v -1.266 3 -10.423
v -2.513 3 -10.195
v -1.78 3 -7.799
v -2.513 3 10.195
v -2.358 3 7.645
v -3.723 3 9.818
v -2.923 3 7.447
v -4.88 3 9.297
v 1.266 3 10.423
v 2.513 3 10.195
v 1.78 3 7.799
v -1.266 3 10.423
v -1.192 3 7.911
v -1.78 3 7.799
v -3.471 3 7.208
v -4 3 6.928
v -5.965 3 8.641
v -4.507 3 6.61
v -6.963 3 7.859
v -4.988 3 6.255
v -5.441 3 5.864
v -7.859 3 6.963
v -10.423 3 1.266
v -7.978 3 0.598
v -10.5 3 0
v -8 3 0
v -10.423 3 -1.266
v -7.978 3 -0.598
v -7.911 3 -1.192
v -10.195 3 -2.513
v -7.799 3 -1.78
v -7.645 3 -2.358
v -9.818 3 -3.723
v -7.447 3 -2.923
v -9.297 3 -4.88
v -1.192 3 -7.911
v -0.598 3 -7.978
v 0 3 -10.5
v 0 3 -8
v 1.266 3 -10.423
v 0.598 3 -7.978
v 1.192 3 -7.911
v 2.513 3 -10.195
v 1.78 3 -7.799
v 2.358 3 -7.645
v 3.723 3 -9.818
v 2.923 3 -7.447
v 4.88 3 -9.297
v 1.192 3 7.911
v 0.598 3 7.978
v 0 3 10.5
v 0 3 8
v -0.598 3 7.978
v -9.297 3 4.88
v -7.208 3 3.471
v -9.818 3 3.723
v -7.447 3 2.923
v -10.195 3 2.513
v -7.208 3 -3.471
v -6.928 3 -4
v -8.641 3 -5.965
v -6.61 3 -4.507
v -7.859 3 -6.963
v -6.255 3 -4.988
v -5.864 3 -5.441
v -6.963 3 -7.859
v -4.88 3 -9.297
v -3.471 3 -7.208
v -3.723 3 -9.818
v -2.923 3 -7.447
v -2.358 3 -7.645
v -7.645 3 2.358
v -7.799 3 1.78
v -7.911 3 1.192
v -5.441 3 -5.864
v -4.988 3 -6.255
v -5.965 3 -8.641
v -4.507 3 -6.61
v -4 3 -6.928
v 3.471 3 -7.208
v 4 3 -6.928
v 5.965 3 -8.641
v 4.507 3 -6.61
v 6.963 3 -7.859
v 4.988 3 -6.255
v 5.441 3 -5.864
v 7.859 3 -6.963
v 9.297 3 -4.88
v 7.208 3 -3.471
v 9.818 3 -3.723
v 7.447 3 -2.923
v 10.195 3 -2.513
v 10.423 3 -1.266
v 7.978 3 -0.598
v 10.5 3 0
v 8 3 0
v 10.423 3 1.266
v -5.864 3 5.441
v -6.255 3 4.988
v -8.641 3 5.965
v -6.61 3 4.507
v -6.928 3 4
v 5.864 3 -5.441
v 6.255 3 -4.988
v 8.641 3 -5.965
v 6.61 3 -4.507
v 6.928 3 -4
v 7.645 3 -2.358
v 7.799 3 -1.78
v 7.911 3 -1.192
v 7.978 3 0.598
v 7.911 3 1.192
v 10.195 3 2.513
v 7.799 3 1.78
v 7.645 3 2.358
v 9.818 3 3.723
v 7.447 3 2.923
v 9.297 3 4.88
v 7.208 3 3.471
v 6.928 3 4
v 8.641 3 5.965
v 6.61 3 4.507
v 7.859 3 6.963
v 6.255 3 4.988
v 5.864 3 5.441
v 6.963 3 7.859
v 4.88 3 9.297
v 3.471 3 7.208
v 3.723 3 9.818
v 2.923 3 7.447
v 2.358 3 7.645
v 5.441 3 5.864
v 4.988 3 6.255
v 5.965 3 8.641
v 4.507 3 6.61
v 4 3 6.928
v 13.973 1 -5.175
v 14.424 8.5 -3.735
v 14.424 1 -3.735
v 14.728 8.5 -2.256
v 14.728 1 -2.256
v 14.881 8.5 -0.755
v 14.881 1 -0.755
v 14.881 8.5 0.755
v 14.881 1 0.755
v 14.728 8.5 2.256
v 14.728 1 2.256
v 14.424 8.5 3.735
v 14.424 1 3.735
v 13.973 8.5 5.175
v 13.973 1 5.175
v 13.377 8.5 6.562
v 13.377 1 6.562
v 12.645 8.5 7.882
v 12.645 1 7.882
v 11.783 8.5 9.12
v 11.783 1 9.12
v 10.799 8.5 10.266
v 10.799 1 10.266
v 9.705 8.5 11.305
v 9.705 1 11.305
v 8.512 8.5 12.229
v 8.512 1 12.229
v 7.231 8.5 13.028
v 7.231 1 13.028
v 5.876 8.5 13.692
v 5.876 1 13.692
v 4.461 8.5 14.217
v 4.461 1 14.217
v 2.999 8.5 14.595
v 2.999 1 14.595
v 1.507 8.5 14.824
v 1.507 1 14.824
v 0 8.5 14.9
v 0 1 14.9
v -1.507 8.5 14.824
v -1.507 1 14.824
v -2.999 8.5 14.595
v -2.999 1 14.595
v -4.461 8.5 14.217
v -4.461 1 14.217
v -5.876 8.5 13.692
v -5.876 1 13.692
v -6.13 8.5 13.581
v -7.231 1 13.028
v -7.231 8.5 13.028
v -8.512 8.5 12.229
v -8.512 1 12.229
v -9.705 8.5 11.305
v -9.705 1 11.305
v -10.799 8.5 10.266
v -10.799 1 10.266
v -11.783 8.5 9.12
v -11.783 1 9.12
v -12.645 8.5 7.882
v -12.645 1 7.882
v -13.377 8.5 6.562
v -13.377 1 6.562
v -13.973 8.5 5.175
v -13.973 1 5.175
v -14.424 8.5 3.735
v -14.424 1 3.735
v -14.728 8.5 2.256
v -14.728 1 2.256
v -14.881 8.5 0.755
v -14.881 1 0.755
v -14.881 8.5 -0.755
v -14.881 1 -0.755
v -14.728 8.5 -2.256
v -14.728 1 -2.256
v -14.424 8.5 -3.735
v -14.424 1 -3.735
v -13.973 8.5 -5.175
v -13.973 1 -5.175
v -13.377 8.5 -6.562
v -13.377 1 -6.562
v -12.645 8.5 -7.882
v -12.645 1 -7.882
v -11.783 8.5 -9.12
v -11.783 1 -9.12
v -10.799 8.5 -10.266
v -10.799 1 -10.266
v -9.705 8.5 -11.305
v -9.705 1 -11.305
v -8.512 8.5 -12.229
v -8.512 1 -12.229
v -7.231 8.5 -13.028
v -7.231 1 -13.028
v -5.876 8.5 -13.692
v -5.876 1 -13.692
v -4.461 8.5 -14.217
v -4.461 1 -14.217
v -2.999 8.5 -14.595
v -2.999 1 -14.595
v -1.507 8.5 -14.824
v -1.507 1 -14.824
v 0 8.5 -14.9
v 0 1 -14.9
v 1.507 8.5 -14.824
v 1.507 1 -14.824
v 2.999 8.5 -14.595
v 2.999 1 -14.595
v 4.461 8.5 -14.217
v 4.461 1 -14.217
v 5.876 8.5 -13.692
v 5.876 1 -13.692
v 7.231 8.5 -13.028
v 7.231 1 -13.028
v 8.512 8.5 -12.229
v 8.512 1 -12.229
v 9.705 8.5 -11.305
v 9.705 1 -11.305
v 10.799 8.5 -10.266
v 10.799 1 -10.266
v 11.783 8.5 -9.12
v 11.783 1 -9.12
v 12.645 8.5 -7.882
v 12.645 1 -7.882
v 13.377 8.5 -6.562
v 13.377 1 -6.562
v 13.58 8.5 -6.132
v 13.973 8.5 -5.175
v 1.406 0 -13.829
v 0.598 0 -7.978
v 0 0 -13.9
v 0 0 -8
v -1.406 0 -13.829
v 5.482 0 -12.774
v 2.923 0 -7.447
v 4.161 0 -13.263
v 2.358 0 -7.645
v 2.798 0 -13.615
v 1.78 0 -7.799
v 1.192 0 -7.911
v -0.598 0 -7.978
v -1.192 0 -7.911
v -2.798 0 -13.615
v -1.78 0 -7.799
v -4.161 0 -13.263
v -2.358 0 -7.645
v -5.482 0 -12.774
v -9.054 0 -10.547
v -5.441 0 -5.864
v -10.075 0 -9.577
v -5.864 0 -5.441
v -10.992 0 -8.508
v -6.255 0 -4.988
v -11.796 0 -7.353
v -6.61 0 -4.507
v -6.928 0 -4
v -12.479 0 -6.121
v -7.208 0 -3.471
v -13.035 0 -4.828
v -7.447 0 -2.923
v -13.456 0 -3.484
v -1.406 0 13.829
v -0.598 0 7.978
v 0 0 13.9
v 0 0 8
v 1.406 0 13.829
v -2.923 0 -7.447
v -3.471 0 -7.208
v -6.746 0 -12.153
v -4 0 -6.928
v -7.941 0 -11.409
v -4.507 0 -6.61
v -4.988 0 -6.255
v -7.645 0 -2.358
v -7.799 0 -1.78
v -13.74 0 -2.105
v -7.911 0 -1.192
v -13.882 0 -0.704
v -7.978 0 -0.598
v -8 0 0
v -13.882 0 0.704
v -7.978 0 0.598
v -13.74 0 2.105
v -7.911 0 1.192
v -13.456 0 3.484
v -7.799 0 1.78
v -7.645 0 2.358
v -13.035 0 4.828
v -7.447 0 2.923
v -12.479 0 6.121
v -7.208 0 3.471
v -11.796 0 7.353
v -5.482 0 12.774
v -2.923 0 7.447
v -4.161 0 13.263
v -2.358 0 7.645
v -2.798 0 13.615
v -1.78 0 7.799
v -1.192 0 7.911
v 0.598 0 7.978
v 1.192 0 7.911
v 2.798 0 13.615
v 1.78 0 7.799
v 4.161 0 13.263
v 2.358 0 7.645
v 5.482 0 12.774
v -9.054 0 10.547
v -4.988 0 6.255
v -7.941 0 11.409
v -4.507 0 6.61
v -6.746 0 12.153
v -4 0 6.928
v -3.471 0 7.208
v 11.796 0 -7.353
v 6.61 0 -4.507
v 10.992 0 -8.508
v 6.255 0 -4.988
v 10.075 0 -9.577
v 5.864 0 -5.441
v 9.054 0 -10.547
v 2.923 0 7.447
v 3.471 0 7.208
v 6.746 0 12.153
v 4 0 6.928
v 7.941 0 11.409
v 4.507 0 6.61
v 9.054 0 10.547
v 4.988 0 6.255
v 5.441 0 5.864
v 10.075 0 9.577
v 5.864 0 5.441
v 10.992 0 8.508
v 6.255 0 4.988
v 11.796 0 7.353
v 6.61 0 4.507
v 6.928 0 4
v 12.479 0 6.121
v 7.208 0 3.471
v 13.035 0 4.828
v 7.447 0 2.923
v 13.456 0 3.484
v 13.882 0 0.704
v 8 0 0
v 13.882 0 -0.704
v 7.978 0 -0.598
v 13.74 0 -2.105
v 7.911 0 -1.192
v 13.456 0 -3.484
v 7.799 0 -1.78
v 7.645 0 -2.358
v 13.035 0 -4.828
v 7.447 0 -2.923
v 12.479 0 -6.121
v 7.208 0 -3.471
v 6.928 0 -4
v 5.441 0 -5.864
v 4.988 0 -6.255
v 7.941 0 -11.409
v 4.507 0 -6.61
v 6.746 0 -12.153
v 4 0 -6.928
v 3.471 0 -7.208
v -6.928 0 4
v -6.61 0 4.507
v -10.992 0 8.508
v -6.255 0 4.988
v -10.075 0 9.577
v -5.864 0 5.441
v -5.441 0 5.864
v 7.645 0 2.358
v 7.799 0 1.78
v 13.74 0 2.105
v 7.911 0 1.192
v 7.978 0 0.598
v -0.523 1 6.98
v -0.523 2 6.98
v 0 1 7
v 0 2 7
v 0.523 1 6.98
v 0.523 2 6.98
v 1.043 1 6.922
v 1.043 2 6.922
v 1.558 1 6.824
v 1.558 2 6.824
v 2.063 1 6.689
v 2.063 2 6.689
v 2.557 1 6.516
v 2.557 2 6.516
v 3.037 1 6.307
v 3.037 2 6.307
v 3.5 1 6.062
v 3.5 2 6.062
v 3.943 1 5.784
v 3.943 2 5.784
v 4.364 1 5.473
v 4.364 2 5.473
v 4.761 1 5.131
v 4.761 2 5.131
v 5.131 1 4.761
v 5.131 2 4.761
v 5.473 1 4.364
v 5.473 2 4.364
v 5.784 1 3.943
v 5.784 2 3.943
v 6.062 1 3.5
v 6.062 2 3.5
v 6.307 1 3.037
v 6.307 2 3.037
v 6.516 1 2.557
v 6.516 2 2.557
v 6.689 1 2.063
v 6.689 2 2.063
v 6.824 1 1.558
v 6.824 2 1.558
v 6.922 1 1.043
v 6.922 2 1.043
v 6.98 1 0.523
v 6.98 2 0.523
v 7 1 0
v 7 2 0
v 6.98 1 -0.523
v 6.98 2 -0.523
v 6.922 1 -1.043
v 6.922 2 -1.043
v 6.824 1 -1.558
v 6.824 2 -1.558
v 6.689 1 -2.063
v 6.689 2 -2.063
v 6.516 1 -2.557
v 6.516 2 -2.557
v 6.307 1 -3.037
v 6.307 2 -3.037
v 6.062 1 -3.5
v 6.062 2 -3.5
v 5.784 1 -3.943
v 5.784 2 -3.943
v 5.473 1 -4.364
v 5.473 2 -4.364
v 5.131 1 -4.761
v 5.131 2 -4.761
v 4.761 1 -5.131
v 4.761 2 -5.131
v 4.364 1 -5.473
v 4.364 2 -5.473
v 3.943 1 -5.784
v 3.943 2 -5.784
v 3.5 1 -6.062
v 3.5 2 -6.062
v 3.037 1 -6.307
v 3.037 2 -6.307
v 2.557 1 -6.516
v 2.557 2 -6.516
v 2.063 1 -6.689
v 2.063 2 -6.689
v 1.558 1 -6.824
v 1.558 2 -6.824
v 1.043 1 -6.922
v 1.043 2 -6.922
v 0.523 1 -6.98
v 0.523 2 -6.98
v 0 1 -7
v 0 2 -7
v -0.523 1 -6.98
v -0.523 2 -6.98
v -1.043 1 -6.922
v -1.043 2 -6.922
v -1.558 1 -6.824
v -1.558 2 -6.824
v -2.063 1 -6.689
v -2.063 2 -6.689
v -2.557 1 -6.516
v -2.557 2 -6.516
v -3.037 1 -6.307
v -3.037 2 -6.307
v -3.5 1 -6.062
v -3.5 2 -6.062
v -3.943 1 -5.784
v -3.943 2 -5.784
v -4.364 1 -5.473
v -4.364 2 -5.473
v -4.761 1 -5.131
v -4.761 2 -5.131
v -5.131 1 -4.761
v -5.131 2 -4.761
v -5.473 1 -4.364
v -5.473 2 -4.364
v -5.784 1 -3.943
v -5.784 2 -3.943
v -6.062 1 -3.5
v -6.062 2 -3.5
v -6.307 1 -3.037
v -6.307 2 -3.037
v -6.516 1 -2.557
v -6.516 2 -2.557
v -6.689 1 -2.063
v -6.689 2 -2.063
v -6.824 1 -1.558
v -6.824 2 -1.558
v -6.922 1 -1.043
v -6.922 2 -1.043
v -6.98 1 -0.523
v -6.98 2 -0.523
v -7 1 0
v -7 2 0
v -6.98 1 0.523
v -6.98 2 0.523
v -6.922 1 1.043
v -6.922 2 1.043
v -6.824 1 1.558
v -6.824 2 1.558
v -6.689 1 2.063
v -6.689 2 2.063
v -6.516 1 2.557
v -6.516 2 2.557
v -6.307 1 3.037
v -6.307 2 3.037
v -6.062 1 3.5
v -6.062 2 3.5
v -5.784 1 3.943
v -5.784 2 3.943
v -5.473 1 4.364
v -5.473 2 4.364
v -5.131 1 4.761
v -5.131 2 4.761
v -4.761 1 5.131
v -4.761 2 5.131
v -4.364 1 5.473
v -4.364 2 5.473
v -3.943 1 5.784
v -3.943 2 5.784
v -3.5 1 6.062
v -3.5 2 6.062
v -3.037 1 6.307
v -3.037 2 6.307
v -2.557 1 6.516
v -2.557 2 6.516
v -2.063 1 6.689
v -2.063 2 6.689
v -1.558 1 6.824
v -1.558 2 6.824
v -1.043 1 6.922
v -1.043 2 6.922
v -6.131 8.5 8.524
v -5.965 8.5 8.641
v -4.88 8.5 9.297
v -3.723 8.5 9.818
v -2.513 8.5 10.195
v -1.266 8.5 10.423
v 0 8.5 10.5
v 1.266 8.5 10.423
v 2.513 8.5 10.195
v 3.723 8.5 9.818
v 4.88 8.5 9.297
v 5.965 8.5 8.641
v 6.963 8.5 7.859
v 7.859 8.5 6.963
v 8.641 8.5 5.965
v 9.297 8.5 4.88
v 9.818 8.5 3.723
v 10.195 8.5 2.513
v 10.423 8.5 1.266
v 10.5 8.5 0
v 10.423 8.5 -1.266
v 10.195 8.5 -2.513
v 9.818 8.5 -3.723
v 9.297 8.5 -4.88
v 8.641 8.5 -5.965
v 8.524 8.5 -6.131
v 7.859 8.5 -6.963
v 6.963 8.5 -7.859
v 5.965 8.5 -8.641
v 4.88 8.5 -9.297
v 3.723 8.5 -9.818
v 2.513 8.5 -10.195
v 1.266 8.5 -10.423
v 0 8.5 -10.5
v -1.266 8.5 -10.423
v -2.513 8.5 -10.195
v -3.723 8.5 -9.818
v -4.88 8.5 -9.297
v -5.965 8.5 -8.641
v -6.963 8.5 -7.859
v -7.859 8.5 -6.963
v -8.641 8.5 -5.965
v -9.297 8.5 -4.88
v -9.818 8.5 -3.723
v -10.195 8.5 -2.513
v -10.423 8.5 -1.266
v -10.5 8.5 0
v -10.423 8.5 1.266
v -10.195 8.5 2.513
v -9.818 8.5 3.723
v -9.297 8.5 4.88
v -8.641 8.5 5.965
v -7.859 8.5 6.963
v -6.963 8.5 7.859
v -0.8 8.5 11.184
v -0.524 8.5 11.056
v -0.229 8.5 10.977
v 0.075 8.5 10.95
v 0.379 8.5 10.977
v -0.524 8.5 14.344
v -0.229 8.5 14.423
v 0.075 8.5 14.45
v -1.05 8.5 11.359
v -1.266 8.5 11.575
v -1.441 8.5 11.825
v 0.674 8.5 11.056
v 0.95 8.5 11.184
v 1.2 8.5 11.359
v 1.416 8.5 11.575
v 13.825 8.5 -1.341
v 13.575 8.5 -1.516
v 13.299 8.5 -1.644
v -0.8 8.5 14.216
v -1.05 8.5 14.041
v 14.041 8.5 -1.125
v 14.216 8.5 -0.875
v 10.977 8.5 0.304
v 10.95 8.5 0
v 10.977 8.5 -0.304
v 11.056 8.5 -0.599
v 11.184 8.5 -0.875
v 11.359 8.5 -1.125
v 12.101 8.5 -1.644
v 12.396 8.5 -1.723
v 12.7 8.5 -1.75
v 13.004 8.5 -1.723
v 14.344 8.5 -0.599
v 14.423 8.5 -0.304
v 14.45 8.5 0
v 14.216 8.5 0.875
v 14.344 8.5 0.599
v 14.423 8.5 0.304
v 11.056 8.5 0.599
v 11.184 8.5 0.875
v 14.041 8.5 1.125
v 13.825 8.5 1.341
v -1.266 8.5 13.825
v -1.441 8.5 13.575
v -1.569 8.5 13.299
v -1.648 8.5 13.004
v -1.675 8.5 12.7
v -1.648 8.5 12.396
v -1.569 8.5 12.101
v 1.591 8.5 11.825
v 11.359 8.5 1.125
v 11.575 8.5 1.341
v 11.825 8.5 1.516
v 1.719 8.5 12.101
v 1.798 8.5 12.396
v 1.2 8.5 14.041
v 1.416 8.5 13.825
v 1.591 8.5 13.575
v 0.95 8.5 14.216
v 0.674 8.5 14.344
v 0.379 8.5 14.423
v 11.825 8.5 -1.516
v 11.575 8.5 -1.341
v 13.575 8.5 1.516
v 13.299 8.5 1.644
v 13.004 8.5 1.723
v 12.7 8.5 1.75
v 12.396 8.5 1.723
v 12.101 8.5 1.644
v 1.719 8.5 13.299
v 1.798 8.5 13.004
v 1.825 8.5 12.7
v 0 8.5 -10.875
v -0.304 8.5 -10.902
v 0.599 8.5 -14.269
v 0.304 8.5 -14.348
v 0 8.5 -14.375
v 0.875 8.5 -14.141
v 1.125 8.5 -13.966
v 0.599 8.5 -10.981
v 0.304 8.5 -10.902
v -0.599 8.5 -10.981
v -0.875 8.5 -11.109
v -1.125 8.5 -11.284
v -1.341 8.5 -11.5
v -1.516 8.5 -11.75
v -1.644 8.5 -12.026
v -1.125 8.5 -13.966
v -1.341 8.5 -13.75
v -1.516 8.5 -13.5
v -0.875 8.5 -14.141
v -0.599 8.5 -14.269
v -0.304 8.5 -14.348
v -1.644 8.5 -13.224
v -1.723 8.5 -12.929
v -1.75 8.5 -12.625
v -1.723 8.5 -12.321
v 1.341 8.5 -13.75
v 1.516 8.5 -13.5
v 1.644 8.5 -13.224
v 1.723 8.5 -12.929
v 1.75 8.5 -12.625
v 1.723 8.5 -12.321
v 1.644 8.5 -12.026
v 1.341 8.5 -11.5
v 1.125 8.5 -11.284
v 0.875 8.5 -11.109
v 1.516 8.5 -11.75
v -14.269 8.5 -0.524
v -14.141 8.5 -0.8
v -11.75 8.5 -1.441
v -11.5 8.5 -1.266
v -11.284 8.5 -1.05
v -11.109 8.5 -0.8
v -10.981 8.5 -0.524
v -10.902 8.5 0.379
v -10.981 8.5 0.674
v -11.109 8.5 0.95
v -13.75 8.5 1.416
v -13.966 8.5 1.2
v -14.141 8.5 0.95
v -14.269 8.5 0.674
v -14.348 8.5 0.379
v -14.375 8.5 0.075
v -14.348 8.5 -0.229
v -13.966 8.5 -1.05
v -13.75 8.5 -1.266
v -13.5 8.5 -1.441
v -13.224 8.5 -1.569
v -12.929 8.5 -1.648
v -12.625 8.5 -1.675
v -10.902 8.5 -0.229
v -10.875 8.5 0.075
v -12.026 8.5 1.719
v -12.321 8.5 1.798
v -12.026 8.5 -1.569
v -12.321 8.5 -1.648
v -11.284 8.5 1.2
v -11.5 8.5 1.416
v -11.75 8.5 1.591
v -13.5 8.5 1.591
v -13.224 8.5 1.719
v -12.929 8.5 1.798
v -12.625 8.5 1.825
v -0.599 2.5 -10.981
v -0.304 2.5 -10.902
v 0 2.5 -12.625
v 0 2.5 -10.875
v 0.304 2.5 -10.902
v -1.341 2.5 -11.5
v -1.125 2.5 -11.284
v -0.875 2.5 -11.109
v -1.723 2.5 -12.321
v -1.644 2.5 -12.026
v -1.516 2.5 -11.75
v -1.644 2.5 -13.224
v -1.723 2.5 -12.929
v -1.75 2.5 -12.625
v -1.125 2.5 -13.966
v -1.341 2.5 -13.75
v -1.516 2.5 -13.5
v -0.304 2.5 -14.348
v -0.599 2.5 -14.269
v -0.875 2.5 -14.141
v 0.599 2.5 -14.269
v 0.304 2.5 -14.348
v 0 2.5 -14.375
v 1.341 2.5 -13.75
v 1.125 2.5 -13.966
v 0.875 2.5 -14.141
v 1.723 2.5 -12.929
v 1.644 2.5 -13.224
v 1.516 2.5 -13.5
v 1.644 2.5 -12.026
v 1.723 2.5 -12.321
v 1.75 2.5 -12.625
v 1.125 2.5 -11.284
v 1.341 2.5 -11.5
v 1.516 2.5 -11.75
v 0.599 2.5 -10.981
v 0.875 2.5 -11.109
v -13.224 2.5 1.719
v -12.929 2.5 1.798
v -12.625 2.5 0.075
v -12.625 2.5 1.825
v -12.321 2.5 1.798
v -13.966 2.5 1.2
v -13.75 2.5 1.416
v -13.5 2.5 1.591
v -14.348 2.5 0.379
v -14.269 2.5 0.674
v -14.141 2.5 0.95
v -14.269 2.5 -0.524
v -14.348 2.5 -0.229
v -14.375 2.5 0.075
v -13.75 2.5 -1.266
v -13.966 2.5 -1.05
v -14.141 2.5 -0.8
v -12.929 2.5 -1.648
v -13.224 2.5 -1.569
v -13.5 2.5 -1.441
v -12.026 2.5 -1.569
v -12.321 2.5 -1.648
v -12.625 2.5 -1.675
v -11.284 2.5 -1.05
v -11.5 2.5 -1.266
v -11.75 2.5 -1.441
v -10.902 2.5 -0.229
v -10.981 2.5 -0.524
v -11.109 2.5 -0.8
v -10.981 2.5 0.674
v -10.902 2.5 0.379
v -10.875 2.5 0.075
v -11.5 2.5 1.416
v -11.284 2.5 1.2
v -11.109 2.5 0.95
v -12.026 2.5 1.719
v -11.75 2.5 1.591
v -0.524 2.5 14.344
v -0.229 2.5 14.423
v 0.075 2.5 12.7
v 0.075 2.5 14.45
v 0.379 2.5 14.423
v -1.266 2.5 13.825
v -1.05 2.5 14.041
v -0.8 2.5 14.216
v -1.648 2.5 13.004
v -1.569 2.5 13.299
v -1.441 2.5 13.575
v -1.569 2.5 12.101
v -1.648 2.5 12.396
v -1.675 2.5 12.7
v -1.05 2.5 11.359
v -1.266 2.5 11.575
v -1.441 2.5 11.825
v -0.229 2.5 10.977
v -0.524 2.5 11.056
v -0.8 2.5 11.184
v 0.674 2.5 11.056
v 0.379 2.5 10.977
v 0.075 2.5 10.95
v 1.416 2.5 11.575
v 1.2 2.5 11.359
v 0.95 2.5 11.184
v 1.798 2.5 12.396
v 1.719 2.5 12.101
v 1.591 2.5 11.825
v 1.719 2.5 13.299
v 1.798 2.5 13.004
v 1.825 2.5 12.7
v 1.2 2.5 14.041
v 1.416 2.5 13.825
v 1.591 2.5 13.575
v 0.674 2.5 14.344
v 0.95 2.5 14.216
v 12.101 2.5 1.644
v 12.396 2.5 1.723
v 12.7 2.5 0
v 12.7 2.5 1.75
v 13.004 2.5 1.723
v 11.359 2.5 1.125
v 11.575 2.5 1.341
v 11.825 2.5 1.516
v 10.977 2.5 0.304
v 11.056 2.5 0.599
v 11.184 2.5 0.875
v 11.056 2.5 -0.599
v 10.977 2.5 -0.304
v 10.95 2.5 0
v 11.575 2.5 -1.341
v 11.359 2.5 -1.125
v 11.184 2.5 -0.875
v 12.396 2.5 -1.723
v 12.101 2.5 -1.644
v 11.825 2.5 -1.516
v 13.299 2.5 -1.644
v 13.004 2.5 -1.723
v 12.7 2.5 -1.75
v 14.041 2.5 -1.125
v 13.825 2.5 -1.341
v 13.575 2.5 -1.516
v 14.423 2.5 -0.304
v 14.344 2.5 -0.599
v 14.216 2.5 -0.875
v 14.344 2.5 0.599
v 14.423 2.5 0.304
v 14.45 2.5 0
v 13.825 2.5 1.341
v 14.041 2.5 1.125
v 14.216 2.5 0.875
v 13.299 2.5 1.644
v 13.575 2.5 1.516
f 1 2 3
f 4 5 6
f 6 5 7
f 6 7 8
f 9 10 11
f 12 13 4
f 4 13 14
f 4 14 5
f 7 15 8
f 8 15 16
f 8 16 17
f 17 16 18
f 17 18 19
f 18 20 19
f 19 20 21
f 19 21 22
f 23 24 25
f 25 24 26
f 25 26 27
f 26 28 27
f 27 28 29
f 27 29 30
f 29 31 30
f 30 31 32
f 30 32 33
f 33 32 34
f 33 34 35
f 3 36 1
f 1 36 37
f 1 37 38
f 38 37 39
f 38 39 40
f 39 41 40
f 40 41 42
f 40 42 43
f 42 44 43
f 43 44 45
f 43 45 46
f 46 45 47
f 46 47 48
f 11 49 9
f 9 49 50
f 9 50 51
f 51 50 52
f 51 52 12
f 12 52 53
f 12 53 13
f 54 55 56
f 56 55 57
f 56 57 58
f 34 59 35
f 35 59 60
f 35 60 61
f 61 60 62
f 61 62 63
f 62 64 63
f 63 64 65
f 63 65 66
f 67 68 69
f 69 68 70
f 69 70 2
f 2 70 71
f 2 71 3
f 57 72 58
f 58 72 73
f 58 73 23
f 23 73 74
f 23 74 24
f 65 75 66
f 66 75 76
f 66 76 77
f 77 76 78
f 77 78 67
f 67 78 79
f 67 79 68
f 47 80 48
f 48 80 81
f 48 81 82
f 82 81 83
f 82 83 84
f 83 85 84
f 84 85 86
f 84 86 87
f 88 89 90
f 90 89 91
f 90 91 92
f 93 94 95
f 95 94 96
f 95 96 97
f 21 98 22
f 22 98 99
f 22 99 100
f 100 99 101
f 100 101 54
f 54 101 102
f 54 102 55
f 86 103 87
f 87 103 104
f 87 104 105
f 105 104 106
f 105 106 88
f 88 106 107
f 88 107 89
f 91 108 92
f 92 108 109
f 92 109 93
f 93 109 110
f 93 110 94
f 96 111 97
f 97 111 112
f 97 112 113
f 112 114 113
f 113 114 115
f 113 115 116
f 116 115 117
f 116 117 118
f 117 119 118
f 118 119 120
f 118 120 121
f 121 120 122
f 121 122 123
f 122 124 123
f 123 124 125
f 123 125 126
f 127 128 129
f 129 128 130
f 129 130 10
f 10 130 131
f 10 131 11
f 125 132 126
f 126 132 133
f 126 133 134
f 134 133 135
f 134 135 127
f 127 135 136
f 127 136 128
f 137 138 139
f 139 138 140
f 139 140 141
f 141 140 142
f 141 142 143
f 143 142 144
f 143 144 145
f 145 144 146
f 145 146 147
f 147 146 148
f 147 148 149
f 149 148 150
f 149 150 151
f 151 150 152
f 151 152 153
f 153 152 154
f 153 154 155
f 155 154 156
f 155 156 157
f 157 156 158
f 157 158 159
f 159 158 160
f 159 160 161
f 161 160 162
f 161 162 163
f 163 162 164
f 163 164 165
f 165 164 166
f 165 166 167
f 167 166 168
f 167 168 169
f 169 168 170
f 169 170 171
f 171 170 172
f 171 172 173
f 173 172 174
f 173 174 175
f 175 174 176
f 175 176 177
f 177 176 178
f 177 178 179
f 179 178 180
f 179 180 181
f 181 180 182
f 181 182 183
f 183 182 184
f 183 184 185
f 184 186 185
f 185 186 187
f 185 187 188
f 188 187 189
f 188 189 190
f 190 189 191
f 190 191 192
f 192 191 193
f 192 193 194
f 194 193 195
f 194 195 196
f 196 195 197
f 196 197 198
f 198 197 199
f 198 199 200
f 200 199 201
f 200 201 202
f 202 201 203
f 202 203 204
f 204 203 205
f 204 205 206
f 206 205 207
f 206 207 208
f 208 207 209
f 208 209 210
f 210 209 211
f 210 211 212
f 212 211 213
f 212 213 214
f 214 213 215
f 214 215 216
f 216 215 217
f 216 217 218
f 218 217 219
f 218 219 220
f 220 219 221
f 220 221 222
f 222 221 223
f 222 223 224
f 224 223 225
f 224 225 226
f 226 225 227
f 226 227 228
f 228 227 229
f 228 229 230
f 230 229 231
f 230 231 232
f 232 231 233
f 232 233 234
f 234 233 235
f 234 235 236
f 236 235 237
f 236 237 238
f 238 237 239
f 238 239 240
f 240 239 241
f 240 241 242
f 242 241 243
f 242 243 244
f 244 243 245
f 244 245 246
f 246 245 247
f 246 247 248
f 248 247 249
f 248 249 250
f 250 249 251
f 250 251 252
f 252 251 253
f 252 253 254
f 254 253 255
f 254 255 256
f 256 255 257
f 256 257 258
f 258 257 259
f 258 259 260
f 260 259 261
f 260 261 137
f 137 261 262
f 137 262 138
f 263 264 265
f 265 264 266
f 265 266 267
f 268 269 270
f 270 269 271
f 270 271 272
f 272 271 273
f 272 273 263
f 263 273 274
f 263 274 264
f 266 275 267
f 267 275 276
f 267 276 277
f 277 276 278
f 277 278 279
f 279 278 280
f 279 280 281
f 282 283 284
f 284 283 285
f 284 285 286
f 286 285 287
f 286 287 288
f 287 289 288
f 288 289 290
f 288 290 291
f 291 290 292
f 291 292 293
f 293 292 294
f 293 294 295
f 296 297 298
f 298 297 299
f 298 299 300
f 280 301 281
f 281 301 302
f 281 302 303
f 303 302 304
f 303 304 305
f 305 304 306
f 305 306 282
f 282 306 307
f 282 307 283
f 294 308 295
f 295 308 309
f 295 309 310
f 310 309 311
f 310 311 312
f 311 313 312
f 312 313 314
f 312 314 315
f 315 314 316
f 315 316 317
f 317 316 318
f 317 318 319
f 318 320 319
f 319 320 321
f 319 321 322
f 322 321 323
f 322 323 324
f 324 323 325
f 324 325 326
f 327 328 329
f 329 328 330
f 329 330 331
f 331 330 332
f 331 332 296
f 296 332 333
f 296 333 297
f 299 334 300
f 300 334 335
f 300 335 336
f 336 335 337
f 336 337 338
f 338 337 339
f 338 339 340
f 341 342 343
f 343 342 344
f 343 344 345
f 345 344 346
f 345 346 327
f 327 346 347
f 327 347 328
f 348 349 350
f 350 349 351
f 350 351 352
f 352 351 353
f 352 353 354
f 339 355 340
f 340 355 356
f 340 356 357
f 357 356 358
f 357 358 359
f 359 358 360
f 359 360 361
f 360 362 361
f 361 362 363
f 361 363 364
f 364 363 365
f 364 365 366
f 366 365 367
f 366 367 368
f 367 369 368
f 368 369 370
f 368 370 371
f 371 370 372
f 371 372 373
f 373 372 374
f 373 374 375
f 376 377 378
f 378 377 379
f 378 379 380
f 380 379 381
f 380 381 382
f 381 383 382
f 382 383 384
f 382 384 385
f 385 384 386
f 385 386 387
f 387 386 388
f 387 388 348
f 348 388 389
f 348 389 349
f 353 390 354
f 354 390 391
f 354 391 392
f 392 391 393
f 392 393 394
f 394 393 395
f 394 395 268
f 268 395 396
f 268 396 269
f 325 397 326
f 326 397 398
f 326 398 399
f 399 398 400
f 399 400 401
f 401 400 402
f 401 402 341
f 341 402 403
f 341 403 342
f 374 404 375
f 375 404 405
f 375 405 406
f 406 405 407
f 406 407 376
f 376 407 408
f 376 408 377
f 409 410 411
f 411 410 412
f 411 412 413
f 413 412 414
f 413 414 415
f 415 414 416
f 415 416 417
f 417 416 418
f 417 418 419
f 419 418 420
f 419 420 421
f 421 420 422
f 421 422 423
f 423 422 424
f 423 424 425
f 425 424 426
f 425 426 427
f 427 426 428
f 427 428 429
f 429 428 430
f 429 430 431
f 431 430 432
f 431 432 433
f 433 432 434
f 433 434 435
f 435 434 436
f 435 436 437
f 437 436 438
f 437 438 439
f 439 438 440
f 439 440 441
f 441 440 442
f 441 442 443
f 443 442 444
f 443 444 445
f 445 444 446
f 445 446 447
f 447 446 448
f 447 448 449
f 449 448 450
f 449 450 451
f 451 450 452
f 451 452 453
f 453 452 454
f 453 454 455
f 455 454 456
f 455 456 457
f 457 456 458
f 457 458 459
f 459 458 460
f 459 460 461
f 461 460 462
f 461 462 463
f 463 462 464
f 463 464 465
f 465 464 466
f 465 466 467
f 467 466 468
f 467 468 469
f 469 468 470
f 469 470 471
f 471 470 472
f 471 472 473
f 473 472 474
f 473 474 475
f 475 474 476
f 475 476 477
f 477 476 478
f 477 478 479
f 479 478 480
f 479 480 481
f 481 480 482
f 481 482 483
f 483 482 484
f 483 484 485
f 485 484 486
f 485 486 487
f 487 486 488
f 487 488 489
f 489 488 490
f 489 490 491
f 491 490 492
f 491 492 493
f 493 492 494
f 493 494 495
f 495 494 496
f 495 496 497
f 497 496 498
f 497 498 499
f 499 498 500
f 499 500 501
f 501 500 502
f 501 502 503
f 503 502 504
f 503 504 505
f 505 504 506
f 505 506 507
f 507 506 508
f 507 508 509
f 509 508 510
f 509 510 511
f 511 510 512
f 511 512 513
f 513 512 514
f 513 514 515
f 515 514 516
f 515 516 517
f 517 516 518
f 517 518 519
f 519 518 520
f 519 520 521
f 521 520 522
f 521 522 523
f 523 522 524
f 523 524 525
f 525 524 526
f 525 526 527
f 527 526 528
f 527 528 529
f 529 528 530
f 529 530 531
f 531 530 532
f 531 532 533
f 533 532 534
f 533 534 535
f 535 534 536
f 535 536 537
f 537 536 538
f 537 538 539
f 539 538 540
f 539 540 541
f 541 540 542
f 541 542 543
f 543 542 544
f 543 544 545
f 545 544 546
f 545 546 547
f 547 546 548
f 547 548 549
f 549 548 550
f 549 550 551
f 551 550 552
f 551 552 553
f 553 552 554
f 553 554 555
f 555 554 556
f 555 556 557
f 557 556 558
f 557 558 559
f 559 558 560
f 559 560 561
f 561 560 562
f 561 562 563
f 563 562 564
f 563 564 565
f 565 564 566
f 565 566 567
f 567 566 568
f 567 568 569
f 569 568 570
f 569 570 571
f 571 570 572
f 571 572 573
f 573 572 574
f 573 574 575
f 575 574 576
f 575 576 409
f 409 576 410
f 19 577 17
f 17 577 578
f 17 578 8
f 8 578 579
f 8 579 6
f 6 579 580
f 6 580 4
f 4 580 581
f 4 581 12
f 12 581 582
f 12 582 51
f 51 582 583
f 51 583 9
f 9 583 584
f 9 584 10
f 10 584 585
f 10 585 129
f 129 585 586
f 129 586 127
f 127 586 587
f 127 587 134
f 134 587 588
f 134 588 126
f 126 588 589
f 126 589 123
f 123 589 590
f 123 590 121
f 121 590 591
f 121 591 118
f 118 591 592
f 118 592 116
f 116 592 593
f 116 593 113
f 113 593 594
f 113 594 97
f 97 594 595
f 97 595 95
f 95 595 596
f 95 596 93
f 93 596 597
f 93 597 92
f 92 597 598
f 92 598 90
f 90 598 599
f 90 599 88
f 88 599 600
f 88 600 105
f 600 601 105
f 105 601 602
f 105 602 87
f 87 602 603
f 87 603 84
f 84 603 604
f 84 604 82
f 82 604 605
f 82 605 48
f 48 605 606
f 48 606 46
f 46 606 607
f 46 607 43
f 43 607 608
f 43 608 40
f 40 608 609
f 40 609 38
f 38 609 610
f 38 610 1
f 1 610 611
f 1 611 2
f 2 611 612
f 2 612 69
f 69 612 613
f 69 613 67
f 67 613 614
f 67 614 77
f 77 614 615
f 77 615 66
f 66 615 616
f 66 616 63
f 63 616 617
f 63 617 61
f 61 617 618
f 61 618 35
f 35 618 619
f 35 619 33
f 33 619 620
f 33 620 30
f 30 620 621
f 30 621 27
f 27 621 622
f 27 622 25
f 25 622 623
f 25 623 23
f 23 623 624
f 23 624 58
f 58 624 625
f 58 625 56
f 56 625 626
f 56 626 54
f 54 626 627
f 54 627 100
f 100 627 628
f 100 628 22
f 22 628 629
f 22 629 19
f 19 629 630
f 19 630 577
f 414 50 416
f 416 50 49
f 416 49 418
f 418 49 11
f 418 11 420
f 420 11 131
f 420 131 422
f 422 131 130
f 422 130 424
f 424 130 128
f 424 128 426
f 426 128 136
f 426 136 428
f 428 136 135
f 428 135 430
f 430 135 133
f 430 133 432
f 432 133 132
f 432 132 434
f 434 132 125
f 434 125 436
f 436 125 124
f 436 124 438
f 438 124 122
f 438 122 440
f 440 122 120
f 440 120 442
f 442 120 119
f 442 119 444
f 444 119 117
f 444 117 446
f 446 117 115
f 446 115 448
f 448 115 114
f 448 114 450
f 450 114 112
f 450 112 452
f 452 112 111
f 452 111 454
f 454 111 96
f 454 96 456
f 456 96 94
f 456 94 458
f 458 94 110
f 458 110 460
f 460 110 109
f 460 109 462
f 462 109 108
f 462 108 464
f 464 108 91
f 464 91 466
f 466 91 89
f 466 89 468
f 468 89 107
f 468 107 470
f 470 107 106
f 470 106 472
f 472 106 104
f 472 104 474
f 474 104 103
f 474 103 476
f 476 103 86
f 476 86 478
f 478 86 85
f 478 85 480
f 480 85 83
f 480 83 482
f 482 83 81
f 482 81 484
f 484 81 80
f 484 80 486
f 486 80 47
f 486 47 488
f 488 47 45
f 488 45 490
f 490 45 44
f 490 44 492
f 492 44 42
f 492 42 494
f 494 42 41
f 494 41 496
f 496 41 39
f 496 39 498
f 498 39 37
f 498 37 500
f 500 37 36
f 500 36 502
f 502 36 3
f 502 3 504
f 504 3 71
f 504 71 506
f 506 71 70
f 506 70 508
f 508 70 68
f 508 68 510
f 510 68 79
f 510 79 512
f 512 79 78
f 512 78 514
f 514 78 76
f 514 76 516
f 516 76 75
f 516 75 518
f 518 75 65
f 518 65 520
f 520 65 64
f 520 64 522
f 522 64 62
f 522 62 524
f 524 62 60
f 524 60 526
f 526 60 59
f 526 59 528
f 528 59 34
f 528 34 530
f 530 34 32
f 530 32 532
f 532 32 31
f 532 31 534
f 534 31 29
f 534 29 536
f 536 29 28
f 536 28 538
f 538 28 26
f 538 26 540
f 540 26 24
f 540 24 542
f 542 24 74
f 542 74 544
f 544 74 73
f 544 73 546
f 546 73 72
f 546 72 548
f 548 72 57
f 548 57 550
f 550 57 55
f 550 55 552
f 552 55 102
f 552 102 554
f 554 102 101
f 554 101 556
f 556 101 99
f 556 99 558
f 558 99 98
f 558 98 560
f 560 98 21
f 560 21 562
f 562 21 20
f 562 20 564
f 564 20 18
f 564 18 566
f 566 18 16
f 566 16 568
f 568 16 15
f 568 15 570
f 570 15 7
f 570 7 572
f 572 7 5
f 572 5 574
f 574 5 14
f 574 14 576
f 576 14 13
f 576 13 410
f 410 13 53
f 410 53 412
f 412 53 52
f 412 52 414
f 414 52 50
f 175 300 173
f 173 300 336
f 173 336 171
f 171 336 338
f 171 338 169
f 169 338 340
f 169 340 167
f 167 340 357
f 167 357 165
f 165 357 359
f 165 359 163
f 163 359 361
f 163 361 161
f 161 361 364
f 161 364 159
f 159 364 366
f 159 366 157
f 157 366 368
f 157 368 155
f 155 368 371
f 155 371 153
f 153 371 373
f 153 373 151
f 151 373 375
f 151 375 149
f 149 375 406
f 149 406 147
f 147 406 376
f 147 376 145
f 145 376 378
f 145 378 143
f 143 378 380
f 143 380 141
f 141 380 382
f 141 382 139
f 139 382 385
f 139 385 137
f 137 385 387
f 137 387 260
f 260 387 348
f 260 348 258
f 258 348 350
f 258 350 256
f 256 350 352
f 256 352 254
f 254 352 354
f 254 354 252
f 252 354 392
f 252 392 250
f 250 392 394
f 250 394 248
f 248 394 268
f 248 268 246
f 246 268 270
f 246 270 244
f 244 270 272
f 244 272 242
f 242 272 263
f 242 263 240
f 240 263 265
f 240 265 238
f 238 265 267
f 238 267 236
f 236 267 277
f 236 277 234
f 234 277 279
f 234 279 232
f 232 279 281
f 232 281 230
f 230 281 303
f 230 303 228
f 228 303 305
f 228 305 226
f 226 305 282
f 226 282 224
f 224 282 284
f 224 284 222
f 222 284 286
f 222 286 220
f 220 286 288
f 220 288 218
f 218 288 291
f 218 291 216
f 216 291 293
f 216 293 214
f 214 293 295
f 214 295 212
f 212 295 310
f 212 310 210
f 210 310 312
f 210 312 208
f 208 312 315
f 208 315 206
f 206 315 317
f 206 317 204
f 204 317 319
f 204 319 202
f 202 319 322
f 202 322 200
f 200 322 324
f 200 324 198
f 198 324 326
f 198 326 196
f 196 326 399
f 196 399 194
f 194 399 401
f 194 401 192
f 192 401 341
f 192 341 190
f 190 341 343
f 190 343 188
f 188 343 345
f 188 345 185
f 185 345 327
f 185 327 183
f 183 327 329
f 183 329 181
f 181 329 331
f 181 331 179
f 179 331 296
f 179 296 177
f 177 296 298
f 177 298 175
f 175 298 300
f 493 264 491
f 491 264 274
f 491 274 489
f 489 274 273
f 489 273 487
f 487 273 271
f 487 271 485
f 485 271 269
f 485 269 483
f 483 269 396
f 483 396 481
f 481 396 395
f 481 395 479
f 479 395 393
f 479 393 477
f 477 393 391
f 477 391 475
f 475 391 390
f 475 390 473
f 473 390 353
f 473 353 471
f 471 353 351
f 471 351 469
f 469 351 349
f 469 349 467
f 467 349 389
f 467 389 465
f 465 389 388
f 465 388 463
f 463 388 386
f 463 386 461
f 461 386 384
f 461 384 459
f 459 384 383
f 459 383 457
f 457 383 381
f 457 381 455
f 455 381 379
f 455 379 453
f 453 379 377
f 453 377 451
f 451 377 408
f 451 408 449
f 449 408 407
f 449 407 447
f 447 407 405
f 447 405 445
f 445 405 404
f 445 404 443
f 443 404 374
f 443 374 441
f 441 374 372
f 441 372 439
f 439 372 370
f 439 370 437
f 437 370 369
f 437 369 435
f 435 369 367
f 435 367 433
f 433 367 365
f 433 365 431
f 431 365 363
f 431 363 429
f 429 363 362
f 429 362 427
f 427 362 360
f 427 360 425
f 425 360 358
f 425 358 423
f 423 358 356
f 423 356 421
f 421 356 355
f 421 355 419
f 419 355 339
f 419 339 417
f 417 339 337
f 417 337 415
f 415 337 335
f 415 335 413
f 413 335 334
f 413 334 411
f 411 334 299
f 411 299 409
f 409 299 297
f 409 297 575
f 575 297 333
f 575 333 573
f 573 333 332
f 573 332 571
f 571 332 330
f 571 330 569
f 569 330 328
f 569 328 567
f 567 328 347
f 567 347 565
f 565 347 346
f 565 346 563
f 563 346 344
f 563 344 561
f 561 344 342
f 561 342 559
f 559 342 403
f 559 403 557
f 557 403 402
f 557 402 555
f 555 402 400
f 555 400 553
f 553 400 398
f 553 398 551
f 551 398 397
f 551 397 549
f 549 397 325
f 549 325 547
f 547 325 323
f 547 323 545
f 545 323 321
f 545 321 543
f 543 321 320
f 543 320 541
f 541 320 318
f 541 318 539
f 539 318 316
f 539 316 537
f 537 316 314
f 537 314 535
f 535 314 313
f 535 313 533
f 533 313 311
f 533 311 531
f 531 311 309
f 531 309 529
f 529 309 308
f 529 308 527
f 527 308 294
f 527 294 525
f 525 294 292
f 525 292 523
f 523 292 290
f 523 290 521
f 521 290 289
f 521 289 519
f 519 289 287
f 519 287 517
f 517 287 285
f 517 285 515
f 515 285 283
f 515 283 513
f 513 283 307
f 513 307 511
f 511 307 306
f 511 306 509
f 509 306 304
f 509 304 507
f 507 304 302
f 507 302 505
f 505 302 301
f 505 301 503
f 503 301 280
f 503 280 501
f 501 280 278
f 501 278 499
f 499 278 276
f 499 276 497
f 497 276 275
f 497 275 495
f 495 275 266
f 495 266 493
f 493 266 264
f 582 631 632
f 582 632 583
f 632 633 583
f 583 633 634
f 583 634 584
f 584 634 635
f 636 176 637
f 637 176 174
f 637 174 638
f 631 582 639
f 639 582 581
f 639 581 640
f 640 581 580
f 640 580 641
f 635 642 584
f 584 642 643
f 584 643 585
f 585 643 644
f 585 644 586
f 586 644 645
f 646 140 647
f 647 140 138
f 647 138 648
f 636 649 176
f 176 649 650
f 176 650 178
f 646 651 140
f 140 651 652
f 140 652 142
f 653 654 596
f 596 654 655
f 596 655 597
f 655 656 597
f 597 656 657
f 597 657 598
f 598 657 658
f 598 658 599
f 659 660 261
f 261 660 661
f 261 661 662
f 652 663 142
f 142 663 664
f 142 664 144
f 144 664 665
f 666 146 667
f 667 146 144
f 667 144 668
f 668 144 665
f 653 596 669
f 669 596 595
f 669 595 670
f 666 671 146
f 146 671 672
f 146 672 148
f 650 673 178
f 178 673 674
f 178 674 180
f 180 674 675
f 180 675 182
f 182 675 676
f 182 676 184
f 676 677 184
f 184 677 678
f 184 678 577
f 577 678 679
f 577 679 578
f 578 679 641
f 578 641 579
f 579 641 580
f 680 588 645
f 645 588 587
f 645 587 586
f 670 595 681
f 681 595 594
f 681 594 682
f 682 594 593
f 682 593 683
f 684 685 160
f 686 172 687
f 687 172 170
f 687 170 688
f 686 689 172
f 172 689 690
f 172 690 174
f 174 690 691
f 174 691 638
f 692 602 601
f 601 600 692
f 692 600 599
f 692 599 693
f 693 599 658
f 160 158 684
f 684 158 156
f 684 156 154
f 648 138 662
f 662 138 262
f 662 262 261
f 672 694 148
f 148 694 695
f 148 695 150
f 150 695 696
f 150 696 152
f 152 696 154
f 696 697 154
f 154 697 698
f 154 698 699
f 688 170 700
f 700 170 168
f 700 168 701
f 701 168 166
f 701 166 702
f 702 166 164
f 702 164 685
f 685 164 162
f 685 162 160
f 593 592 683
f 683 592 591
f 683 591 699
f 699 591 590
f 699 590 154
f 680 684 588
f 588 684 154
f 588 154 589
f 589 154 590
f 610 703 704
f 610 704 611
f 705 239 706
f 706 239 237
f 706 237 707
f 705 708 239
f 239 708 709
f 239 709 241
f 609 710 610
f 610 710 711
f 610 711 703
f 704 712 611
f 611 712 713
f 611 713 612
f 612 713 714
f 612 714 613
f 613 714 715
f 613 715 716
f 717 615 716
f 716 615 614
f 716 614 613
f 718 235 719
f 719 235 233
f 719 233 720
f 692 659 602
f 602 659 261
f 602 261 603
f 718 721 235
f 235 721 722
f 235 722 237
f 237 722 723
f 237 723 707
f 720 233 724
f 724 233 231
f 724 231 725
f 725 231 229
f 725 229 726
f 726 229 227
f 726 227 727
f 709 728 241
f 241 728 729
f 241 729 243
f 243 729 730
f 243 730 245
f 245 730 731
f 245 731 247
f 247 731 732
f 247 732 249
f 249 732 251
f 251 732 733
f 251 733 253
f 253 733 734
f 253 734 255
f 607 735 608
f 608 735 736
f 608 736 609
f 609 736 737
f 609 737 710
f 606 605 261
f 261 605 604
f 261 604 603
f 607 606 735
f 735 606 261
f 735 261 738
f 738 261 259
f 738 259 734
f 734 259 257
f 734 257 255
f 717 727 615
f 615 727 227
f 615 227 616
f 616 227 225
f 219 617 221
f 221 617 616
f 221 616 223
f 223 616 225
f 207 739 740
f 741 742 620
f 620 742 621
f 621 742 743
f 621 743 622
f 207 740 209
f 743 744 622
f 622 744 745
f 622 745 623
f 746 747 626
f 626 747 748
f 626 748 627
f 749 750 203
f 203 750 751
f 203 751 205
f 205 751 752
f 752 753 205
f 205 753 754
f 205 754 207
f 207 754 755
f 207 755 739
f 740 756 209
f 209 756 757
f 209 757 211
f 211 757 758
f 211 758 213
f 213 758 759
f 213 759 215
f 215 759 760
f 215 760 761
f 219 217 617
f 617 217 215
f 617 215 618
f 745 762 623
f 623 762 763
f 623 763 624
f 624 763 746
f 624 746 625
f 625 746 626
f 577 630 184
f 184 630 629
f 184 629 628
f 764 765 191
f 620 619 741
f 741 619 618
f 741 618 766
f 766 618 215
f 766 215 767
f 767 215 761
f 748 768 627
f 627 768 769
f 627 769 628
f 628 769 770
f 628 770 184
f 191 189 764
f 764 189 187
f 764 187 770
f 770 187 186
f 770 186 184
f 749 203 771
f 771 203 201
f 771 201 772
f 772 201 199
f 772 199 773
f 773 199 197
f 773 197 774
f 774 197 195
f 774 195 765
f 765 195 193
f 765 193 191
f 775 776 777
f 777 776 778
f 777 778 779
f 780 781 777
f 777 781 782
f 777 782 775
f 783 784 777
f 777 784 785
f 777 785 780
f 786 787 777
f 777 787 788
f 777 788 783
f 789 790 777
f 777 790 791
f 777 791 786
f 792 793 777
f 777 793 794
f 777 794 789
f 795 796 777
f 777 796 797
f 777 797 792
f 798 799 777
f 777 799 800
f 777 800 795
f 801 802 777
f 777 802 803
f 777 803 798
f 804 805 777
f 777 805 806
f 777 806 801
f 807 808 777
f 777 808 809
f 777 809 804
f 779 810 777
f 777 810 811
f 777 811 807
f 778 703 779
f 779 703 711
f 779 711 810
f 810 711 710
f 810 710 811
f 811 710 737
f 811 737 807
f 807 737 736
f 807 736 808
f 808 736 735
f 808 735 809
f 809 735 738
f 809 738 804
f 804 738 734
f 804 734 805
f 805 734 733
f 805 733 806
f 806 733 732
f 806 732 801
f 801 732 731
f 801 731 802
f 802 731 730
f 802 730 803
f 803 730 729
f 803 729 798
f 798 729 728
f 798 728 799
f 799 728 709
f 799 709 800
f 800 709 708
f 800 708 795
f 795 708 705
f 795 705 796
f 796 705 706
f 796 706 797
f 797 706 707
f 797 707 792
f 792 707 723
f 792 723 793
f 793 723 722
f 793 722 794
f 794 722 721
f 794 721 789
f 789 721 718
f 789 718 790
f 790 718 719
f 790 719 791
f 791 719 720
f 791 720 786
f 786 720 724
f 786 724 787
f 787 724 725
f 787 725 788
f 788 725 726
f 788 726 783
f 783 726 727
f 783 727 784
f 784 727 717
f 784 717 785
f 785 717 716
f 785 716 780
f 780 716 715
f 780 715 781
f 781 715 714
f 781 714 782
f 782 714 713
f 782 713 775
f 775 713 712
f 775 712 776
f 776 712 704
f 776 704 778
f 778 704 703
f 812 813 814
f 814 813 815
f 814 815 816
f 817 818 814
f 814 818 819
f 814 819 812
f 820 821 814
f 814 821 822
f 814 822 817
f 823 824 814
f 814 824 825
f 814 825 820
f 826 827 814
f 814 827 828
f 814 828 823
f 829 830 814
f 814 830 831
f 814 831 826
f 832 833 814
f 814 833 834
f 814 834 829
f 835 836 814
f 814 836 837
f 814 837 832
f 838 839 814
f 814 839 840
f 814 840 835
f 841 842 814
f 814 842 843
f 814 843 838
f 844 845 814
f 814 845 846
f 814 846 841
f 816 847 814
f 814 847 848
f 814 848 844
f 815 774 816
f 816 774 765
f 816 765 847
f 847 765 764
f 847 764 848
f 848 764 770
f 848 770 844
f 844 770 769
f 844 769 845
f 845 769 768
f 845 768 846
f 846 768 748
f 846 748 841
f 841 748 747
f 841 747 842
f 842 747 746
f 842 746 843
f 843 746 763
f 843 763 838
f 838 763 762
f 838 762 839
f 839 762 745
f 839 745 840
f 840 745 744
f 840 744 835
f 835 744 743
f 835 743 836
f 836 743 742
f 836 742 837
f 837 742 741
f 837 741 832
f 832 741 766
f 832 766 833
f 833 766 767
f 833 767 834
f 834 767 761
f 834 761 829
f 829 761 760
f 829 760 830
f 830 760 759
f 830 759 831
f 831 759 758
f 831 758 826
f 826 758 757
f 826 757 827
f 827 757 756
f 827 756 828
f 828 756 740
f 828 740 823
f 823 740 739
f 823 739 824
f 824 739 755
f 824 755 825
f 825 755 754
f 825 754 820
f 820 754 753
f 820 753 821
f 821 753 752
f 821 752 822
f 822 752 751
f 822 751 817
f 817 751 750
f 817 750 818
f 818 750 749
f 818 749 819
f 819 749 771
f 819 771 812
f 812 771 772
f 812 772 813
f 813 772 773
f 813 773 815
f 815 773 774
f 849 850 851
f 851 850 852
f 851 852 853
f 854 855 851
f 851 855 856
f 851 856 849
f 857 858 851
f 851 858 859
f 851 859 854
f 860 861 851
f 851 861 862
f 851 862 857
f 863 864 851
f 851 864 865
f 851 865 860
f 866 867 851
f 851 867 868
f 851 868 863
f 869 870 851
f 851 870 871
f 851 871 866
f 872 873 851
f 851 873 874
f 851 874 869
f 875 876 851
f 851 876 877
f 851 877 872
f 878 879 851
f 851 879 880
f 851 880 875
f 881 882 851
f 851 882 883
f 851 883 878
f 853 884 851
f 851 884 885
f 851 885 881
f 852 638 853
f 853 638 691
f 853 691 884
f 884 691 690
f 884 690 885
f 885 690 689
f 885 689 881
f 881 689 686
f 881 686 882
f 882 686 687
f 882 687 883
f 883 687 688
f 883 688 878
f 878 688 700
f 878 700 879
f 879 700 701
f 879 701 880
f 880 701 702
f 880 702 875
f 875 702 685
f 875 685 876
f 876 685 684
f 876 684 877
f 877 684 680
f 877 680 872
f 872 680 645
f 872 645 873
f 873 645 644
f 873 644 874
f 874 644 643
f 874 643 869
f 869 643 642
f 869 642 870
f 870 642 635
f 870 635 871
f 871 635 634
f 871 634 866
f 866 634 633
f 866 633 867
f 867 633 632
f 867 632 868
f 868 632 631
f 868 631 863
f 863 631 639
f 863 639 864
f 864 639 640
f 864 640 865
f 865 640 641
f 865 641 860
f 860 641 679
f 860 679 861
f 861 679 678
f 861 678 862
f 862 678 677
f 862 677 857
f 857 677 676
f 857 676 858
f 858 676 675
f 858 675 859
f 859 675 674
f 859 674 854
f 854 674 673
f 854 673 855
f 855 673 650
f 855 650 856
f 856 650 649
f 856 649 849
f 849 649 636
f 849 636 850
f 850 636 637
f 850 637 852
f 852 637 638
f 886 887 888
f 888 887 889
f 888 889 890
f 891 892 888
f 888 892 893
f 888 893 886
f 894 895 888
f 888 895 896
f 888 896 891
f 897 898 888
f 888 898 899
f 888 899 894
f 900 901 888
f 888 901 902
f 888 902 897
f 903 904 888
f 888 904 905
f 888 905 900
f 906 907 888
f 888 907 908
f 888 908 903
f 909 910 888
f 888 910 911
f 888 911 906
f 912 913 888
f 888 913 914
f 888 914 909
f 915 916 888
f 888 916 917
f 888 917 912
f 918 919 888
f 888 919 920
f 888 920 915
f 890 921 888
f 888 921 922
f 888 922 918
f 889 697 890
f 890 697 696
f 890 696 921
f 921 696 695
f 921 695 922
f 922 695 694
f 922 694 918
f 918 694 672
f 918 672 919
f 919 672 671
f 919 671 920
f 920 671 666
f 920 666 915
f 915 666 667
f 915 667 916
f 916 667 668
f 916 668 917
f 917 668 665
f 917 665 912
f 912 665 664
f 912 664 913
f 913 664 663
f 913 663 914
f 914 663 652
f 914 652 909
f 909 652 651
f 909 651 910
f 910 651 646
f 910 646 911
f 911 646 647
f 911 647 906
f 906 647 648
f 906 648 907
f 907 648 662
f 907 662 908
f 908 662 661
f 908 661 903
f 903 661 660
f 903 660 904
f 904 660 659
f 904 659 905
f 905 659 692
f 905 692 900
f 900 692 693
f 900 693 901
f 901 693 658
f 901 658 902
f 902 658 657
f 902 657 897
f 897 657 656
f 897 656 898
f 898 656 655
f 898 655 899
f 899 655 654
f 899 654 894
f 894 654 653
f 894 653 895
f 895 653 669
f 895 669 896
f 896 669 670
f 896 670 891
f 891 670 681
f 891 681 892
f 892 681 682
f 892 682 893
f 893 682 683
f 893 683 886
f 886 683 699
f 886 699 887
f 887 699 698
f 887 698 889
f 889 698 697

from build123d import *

# Parameters (mm, degrees)
SKETCH1_R           = 14.9
BOSS_EXTRUDE1_DEPTH = 3
SKETCH2_R           = 7
CUT_EXTRUDE1_DEPTH  = 22.28426649
SKETCH3_R           = 14.9
SKETCH3_R_2         = 10.5
BOSS_EXTRUDE2_DEPTH = 3.5
CHAMFER1_SIZE       = 1
SKETCH4_R           = 1.75
CUT_EXTRUDE2_DEPTH  = 4
BOSS_EXTRUDE3_START = 2
SKETCH5_R           = 14.9
SKETCH5_R_2         = 10.5
SKETCH5_R_3         = 1.75
BOSS_EXTRUDE3_DEPTH = 2


with BuildPart() as part:
    # Sketch1 → Boss-Extrude1 (new body)
    with BuildSketch(Plane(origin=(0, 0, 0), x_dir=(-1, 0, 0), z_dir=(0, 1, 0))):
        with Locations(Location((0, 0, 0), (0, 0, 90))):
            Circle(SKETCH1_R)
    extrude(amount=BOSS_EXTRUDE1_DEPTH)

    # Sketch2 → Cut-Extrude1 (cut, through all)
    with BuildSketch(Plane(origin=(0, 3, 0), x_dir=(-1, 0, 0), z_dir=(0, 1, 0))):
        with Locations(Location((0, 0, 0), (0, 0, 90))):
            Circle(SKETCH2_R)
    extrude(amount=-CUT_EXTRUDE1_DEPTH, mode=Mode.SUBTRACT)

    # Sketch3 → Boss-Extrude2 (add)
    with BuildSketch(Plane(origin=(0, 3, 0), x_dir=(-1, 0, 0), z_dir=(0, 1, 0))):
        with Locations(Location((0, 0, 0), (0, 0, 90))):
            Circle(SKETCH3_R)
        with Locations(Location((0, 0, 0), (0, 0, 90))):
            Circle(SKETCH3_R_2, mode=Mode.SUBTRACT)
    extrude(amount=BOSS_EXTRUDE2_DEPTH)

    # Chamfer1
    chamfer1_edges = [part.edges().sort_by_distance(p)[0] for p in [
        (0, 0, -14.9),
        (0, 0, -7),
        (0, 3, -7),
    ]]
    chamfer(chamfer1_edges, length=CHAMFER1_SIZE)

    # Sketch4 → Cut-Extrude2 (cut)
    with BuildSketch(Plane(origin=(0, 6.5, 0), x_dir=(-1, 0, 0), z_dir=(0, 1, 0))):
        with Locations(Location((-12.7, 0, 0), (0, 0, 90))):
            Circle(SKETCH4_R)
        with Locations(Location((-0.075, 12.7, 0), (0, 0, 90))):
            Circle(SKETCH4_R)
        with Locations(Location((12.625, 0.075, 0), (0, 0, 90))):
            Circle(SKETCH4_R)
        with Locations(Location((0, -12.625, 0), (0, 0, 90))):
            Circle(SKETCH4_R)
    extrude(amount=-CUT_EXTRUDE2_DEPTH, mode=Mode.SUBTRACT)

    # Sketch5 → Boss-Extrude3 (add)
    with BuildSketch(Plane(origin=(0, 6.5, 0), x_dir=(-1, 0, 0), z_dir=(0, 1, 0)).offset(BOSS_EXTRUDE3_START)):
        with Locations(Location((0, 0, 0), (0, 0, 90))):
            Circle(SKETCH5_R)
        with Locations(Location((0, 0, 0), (0, 0, 90))):
            Circle(SKETCH5_R_2, mode=Mode.SUBTRACT)
        with Locations(Location((0, -12.625, 0), (0, 0, 90))):
            Circle(SKETCH5_R_3, mode=Mode.SUBTRACT)
        with Locations(Location((12.625, 0.075, 0), (0, 0, 90))):
            Circle(SKETCH5_R_3, mode=Mode.SUBTRACT)
        with Locations(Location((-0.075, 12.7, 0), (0, 0, 90))):
            Circle(SKETCH5_R_3, mode=Mode.SUBTRACT)
        with Locations(Location((-12.7, 0, 0), (0, 0, 90))):
            Circle(SKETCH5_R_3, mode=Mode.SUBTRACT)
    extrude(amount=-BOSS_EXTRUDE3_DEPTH)


solid = part.part
